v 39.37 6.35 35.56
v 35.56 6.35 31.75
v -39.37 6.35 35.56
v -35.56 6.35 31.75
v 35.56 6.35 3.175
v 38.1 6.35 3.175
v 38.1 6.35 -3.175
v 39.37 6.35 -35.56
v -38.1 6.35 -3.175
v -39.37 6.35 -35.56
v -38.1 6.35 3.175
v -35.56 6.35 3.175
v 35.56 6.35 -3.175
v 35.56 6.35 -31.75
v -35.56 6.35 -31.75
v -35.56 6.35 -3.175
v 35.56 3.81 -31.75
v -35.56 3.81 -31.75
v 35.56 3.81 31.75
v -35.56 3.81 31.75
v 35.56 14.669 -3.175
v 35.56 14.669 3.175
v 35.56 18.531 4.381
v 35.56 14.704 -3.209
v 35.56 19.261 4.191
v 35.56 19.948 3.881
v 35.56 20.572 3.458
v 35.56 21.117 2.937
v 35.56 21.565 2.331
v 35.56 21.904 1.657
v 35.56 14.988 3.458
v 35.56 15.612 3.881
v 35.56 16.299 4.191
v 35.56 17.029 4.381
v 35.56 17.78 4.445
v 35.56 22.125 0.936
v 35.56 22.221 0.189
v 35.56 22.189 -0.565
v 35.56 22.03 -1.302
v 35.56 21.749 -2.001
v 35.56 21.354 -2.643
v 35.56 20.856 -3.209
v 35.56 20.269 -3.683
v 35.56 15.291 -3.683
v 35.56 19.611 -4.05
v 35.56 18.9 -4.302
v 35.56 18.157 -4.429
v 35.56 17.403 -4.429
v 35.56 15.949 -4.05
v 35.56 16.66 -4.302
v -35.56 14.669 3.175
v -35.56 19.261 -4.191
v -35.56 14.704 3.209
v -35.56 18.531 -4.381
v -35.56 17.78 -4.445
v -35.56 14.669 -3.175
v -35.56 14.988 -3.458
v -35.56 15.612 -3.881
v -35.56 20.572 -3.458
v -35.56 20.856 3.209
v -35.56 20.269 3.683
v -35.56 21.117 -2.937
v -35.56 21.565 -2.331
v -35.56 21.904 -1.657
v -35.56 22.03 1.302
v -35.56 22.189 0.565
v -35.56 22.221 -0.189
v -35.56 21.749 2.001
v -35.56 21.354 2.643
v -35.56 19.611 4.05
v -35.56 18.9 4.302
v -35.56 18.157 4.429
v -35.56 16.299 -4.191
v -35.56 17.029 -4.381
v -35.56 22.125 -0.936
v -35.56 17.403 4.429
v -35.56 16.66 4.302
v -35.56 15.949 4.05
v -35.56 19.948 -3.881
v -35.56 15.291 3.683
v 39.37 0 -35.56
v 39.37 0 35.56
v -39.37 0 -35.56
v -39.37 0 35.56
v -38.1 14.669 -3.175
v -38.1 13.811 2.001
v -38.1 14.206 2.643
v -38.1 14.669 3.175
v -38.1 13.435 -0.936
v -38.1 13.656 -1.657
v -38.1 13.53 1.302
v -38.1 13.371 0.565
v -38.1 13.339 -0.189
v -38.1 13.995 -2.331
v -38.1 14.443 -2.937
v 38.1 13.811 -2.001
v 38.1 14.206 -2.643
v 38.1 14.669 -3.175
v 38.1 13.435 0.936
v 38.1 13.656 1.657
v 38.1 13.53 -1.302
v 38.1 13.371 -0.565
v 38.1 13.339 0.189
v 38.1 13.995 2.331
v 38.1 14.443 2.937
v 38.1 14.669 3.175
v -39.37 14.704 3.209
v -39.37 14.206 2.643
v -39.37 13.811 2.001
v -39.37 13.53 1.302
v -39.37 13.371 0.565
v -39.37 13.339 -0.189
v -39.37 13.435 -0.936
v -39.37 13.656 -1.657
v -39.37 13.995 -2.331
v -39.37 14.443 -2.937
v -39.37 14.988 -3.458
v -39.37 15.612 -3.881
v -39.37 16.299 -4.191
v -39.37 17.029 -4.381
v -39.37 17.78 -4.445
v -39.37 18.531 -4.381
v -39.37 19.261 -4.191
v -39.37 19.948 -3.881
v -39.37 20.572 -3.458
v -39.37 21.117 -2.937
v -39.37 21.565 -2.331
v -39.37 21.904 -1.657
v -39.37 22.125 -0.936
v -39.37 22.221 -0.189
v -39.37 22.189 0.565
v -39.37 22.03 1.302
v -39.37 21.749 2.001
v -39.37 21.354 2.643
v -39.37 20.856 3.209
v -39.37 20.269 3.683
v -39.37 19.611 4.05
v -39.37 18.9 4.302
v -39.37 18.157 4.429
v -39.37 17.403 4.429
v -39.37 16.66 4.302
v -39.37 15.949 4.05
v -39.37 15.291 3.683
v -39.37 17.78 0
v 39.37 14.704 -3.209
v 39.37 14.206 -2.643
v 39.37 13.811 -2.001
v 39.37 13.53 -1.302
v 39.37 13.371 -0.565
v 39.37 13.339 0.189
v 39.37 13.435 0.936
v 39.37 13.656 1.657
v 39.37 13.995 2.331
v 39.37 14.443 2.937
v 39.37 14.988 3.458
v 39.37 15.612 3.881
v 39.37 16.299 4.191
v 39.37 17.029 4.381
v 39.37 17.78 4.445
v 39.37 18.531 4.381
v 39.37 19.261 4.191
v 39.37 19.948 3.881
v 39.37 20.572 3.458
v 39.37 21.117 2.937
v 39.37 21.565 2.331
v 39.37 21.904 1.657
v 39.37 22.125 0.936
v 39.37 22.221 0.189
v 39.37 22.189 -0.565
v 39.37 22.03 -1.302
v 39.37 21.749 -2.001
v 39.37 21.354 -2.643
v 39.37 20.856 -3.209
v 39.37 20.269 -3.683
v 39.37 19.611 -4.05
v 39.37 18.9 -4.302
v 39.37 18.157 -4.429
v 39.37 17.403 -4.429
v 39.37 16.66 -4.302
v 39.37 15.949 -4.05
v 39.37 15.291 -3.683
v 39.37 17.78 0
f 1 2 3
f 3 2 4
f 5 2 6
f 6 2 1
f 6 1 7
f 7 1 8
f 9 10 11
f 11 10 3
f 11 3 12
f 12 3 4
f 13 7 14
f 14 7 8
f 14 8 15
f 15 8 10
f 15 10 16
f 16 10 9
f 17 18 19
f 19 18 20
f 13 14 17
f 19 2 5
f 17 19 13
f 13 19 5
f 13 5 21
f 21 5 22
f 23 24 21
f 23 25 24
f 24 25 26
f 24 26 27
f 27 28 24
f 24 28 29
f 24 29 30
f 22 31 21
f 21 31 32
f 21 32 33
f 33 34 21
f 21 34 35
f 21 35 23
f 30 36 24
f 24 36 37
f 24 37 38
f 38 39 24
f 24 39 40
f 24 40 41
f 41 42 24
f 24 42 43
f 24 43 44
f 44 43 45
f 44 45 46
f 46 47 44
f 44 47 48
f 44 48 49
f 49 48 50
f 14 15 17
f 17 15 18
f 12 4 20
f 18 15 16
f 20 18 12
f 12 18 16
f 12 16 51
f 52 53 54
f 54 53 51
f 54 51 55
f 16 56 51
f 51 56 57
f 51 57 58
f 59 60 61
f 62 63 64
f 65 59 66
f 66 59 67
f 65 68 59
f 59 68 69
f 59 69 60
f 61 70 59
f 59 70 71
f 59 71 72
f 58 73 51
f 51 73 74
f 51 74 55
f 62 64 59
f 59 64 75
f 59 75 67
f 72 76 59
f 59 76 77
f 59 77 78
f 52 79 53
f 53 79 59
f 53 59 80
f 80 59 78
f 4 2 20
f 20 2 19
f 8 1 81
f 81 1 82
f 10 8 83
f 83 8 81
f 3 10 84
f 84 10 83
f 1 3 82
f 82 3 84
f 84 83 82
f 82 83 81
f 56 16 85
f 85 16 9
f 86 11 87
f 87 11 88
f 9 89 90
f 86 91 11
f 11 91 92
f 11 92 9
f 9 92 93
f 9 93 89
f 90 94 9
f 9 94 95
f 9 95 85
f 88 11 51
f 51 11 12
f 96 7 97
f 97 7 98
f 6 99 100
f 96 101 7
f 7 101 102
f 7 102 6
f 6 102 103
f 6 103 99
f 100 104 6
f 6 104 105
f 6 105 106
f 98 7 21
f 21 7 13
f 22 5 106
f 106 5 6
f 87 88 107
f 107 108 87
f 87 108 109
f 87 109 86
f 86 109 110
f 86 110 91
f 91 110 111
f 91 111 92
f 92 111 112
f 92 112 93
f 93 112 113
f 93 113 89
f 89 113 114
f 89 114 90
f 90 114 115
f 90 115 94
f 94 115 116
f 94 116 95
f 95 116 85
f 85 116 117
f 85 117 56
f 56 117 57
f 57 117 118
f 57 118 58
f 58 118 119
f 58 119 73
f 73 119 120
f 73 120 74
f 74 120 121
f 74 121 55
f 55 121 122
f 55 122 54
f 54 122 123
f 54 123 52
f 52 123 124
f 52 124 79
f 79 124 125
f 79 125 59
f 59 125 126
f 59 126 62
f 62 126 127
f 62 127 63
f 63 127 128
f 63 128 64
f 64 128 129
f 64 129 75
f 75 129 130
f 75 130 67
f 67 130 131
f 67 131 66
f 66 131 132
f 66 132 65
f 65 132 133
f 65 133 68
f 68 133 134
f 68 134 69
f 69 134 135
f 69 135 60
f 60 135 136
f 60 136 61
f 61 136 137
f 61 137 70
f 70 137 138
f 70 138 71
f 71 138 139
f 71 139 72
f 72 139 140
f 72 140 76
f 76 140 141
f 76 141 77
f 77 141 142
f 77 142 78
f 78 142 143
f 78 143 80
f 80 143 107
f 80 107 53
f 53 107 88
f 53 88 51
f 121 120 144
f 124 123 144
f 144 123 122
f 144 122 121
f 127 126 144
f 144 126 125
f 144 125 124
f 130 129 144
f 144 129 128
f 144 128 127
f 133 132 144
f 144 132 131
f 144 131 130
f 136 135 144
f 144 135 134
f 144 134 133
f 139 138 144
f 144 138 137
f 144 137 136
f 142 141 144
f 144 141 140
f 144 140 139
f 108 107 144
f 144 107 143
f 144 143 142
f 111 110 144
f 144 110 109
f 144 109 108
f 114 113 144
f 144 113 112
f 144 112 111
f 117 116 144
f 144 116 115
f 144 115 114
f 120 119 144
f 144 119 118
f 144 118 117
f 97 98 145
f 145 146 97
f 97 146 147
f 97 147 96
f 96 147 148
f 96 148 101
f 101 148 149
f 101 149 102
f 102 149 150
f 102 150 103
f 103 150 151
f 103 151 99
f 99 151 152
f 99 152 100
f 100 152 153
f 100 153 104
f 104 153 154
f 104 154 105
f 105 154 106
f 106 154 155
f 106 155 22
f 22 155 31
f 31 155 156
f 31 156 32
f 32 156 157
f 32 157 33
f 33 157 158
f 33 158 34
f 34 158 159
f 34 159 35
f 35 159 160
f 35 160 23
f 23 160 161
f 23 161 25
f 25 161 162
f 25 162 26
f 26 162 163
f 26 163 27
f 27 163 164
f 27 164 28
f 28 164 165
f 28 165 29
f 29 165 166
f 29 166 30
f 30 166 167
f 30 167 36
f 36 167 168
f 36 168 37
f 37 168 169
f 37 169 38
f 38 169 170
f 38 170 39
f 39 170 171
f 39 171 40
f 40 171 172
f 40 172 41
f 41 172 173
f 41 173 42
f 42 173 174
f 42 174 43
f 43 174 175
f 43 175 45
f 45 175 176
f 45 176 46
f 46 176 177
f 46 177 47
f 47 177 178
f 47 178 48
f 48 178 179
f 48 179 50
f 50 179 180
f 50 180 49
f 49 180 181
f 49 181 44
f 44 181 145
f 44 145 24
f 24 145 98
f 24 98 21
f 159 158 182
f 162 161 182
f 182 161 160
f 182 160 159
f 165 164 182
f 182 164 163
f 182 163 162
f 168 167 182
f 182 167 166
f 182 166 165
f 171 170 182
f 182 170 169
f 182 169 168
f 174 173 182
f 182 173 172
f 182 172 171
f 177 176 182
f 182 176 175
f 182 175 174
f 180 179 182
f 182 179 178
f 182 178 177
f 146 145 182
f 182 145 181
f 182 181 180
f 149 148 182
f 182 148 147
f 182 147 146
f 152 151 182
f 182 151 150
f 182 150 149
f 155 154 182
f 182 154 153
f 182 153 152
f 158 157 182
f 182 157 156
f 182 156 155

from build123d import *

# Parameters (mm, degrees)
SKETCH1_W           = 71.12
SKETCH1_H           = 63.5
INNER_LID_DEPTH     = 3.81
SKETCH1_5_W         = 78.74
SKETCH1_5_H         = 71.12
SKETCH1_5_W_2       = 71.12
SKETCH1_5_H_2       = 63.5
OUTER_LID_DEPTH     = 6.35
SKETCH2_W           = 2.54
SKETCH2_H           = 6.35
HOLE_SLIDES_DEPTH   = 11.43
SKETCH3_R           = 4.445
HOLE_LID_1_DEPTH    = 3.81
BOSS_EXTRUDE5_START = -3.81
SKETCH4_R           = 4.445
BOSS_EXTRUDE5_DEPTH = 3.81


with BuildPart() as part:
    # Sketch1 → inner-lid (new body)
    with BuildSketch(Plane(origin=(0, 0, 0), x_dir=(1, 0, 0), z_dir=(0, 1, 0))):
        Rectangle(SKETCH1_W, SKETCH1_H)
    extrude(amount=INNER_LID_DEPTH)

    # Sketch1<5> → outer-lid (add)
    with BuildSketch(Plane(origin=(0, 0, 0), x_dir=(1, 0, 0), z_dir=(0, 1, 0))):
        Rectangle(SKETCH1_5_W, SKETCH1_5_H)
        Rectangle(SKETCH1_5_W_2, SKETCH1_5_H_2, mode=Mode.SUBTRACT)
    extrude(amount=OUTER_LID_DEPTH)

    # Sketch2 → hole-slides (add)
    with BuildSketch(Plane(origin=(0, 6.35, 0), x_dir=(1, 0, 0), z_dir=(0, 1, 0))):
        with Locations((36.83, 0)):
            Rectangle(SKETCH2_W, SKETCH2_H)
        with Locations((-36.83, 0)):
            Rectangle(SKETCH2_W, SKETCH2_H)
    extrude(amount=HOLE_SLIDES_DEPTH)

    # Sketch3 → hole-lid-1 (add)
    with BuildSketch(Plane(origin=(-35.56, 0, 0), x_dir=(0, 0, -1), z_dir=(1, 0, 0))):
        with Locations((0, 17.78)):
            Circle(SKETCH3_R)
    extrude(amount=-HOLE_LID_1_DEPTH)

    # Sketch4 → Boss-Extrude5 (add)
    with BuildSketch(Plane.ZY.offset(-35.56).offset(BOSS_EXTRUDE5_START)):
        with Locations(Location((0, 17.78, 0), (0, 0, 180))):
            Circle(SKETCH4_R)
    extrude(amount=BOSS_EXTRUDE5_DEPTH)


solid = part.part
